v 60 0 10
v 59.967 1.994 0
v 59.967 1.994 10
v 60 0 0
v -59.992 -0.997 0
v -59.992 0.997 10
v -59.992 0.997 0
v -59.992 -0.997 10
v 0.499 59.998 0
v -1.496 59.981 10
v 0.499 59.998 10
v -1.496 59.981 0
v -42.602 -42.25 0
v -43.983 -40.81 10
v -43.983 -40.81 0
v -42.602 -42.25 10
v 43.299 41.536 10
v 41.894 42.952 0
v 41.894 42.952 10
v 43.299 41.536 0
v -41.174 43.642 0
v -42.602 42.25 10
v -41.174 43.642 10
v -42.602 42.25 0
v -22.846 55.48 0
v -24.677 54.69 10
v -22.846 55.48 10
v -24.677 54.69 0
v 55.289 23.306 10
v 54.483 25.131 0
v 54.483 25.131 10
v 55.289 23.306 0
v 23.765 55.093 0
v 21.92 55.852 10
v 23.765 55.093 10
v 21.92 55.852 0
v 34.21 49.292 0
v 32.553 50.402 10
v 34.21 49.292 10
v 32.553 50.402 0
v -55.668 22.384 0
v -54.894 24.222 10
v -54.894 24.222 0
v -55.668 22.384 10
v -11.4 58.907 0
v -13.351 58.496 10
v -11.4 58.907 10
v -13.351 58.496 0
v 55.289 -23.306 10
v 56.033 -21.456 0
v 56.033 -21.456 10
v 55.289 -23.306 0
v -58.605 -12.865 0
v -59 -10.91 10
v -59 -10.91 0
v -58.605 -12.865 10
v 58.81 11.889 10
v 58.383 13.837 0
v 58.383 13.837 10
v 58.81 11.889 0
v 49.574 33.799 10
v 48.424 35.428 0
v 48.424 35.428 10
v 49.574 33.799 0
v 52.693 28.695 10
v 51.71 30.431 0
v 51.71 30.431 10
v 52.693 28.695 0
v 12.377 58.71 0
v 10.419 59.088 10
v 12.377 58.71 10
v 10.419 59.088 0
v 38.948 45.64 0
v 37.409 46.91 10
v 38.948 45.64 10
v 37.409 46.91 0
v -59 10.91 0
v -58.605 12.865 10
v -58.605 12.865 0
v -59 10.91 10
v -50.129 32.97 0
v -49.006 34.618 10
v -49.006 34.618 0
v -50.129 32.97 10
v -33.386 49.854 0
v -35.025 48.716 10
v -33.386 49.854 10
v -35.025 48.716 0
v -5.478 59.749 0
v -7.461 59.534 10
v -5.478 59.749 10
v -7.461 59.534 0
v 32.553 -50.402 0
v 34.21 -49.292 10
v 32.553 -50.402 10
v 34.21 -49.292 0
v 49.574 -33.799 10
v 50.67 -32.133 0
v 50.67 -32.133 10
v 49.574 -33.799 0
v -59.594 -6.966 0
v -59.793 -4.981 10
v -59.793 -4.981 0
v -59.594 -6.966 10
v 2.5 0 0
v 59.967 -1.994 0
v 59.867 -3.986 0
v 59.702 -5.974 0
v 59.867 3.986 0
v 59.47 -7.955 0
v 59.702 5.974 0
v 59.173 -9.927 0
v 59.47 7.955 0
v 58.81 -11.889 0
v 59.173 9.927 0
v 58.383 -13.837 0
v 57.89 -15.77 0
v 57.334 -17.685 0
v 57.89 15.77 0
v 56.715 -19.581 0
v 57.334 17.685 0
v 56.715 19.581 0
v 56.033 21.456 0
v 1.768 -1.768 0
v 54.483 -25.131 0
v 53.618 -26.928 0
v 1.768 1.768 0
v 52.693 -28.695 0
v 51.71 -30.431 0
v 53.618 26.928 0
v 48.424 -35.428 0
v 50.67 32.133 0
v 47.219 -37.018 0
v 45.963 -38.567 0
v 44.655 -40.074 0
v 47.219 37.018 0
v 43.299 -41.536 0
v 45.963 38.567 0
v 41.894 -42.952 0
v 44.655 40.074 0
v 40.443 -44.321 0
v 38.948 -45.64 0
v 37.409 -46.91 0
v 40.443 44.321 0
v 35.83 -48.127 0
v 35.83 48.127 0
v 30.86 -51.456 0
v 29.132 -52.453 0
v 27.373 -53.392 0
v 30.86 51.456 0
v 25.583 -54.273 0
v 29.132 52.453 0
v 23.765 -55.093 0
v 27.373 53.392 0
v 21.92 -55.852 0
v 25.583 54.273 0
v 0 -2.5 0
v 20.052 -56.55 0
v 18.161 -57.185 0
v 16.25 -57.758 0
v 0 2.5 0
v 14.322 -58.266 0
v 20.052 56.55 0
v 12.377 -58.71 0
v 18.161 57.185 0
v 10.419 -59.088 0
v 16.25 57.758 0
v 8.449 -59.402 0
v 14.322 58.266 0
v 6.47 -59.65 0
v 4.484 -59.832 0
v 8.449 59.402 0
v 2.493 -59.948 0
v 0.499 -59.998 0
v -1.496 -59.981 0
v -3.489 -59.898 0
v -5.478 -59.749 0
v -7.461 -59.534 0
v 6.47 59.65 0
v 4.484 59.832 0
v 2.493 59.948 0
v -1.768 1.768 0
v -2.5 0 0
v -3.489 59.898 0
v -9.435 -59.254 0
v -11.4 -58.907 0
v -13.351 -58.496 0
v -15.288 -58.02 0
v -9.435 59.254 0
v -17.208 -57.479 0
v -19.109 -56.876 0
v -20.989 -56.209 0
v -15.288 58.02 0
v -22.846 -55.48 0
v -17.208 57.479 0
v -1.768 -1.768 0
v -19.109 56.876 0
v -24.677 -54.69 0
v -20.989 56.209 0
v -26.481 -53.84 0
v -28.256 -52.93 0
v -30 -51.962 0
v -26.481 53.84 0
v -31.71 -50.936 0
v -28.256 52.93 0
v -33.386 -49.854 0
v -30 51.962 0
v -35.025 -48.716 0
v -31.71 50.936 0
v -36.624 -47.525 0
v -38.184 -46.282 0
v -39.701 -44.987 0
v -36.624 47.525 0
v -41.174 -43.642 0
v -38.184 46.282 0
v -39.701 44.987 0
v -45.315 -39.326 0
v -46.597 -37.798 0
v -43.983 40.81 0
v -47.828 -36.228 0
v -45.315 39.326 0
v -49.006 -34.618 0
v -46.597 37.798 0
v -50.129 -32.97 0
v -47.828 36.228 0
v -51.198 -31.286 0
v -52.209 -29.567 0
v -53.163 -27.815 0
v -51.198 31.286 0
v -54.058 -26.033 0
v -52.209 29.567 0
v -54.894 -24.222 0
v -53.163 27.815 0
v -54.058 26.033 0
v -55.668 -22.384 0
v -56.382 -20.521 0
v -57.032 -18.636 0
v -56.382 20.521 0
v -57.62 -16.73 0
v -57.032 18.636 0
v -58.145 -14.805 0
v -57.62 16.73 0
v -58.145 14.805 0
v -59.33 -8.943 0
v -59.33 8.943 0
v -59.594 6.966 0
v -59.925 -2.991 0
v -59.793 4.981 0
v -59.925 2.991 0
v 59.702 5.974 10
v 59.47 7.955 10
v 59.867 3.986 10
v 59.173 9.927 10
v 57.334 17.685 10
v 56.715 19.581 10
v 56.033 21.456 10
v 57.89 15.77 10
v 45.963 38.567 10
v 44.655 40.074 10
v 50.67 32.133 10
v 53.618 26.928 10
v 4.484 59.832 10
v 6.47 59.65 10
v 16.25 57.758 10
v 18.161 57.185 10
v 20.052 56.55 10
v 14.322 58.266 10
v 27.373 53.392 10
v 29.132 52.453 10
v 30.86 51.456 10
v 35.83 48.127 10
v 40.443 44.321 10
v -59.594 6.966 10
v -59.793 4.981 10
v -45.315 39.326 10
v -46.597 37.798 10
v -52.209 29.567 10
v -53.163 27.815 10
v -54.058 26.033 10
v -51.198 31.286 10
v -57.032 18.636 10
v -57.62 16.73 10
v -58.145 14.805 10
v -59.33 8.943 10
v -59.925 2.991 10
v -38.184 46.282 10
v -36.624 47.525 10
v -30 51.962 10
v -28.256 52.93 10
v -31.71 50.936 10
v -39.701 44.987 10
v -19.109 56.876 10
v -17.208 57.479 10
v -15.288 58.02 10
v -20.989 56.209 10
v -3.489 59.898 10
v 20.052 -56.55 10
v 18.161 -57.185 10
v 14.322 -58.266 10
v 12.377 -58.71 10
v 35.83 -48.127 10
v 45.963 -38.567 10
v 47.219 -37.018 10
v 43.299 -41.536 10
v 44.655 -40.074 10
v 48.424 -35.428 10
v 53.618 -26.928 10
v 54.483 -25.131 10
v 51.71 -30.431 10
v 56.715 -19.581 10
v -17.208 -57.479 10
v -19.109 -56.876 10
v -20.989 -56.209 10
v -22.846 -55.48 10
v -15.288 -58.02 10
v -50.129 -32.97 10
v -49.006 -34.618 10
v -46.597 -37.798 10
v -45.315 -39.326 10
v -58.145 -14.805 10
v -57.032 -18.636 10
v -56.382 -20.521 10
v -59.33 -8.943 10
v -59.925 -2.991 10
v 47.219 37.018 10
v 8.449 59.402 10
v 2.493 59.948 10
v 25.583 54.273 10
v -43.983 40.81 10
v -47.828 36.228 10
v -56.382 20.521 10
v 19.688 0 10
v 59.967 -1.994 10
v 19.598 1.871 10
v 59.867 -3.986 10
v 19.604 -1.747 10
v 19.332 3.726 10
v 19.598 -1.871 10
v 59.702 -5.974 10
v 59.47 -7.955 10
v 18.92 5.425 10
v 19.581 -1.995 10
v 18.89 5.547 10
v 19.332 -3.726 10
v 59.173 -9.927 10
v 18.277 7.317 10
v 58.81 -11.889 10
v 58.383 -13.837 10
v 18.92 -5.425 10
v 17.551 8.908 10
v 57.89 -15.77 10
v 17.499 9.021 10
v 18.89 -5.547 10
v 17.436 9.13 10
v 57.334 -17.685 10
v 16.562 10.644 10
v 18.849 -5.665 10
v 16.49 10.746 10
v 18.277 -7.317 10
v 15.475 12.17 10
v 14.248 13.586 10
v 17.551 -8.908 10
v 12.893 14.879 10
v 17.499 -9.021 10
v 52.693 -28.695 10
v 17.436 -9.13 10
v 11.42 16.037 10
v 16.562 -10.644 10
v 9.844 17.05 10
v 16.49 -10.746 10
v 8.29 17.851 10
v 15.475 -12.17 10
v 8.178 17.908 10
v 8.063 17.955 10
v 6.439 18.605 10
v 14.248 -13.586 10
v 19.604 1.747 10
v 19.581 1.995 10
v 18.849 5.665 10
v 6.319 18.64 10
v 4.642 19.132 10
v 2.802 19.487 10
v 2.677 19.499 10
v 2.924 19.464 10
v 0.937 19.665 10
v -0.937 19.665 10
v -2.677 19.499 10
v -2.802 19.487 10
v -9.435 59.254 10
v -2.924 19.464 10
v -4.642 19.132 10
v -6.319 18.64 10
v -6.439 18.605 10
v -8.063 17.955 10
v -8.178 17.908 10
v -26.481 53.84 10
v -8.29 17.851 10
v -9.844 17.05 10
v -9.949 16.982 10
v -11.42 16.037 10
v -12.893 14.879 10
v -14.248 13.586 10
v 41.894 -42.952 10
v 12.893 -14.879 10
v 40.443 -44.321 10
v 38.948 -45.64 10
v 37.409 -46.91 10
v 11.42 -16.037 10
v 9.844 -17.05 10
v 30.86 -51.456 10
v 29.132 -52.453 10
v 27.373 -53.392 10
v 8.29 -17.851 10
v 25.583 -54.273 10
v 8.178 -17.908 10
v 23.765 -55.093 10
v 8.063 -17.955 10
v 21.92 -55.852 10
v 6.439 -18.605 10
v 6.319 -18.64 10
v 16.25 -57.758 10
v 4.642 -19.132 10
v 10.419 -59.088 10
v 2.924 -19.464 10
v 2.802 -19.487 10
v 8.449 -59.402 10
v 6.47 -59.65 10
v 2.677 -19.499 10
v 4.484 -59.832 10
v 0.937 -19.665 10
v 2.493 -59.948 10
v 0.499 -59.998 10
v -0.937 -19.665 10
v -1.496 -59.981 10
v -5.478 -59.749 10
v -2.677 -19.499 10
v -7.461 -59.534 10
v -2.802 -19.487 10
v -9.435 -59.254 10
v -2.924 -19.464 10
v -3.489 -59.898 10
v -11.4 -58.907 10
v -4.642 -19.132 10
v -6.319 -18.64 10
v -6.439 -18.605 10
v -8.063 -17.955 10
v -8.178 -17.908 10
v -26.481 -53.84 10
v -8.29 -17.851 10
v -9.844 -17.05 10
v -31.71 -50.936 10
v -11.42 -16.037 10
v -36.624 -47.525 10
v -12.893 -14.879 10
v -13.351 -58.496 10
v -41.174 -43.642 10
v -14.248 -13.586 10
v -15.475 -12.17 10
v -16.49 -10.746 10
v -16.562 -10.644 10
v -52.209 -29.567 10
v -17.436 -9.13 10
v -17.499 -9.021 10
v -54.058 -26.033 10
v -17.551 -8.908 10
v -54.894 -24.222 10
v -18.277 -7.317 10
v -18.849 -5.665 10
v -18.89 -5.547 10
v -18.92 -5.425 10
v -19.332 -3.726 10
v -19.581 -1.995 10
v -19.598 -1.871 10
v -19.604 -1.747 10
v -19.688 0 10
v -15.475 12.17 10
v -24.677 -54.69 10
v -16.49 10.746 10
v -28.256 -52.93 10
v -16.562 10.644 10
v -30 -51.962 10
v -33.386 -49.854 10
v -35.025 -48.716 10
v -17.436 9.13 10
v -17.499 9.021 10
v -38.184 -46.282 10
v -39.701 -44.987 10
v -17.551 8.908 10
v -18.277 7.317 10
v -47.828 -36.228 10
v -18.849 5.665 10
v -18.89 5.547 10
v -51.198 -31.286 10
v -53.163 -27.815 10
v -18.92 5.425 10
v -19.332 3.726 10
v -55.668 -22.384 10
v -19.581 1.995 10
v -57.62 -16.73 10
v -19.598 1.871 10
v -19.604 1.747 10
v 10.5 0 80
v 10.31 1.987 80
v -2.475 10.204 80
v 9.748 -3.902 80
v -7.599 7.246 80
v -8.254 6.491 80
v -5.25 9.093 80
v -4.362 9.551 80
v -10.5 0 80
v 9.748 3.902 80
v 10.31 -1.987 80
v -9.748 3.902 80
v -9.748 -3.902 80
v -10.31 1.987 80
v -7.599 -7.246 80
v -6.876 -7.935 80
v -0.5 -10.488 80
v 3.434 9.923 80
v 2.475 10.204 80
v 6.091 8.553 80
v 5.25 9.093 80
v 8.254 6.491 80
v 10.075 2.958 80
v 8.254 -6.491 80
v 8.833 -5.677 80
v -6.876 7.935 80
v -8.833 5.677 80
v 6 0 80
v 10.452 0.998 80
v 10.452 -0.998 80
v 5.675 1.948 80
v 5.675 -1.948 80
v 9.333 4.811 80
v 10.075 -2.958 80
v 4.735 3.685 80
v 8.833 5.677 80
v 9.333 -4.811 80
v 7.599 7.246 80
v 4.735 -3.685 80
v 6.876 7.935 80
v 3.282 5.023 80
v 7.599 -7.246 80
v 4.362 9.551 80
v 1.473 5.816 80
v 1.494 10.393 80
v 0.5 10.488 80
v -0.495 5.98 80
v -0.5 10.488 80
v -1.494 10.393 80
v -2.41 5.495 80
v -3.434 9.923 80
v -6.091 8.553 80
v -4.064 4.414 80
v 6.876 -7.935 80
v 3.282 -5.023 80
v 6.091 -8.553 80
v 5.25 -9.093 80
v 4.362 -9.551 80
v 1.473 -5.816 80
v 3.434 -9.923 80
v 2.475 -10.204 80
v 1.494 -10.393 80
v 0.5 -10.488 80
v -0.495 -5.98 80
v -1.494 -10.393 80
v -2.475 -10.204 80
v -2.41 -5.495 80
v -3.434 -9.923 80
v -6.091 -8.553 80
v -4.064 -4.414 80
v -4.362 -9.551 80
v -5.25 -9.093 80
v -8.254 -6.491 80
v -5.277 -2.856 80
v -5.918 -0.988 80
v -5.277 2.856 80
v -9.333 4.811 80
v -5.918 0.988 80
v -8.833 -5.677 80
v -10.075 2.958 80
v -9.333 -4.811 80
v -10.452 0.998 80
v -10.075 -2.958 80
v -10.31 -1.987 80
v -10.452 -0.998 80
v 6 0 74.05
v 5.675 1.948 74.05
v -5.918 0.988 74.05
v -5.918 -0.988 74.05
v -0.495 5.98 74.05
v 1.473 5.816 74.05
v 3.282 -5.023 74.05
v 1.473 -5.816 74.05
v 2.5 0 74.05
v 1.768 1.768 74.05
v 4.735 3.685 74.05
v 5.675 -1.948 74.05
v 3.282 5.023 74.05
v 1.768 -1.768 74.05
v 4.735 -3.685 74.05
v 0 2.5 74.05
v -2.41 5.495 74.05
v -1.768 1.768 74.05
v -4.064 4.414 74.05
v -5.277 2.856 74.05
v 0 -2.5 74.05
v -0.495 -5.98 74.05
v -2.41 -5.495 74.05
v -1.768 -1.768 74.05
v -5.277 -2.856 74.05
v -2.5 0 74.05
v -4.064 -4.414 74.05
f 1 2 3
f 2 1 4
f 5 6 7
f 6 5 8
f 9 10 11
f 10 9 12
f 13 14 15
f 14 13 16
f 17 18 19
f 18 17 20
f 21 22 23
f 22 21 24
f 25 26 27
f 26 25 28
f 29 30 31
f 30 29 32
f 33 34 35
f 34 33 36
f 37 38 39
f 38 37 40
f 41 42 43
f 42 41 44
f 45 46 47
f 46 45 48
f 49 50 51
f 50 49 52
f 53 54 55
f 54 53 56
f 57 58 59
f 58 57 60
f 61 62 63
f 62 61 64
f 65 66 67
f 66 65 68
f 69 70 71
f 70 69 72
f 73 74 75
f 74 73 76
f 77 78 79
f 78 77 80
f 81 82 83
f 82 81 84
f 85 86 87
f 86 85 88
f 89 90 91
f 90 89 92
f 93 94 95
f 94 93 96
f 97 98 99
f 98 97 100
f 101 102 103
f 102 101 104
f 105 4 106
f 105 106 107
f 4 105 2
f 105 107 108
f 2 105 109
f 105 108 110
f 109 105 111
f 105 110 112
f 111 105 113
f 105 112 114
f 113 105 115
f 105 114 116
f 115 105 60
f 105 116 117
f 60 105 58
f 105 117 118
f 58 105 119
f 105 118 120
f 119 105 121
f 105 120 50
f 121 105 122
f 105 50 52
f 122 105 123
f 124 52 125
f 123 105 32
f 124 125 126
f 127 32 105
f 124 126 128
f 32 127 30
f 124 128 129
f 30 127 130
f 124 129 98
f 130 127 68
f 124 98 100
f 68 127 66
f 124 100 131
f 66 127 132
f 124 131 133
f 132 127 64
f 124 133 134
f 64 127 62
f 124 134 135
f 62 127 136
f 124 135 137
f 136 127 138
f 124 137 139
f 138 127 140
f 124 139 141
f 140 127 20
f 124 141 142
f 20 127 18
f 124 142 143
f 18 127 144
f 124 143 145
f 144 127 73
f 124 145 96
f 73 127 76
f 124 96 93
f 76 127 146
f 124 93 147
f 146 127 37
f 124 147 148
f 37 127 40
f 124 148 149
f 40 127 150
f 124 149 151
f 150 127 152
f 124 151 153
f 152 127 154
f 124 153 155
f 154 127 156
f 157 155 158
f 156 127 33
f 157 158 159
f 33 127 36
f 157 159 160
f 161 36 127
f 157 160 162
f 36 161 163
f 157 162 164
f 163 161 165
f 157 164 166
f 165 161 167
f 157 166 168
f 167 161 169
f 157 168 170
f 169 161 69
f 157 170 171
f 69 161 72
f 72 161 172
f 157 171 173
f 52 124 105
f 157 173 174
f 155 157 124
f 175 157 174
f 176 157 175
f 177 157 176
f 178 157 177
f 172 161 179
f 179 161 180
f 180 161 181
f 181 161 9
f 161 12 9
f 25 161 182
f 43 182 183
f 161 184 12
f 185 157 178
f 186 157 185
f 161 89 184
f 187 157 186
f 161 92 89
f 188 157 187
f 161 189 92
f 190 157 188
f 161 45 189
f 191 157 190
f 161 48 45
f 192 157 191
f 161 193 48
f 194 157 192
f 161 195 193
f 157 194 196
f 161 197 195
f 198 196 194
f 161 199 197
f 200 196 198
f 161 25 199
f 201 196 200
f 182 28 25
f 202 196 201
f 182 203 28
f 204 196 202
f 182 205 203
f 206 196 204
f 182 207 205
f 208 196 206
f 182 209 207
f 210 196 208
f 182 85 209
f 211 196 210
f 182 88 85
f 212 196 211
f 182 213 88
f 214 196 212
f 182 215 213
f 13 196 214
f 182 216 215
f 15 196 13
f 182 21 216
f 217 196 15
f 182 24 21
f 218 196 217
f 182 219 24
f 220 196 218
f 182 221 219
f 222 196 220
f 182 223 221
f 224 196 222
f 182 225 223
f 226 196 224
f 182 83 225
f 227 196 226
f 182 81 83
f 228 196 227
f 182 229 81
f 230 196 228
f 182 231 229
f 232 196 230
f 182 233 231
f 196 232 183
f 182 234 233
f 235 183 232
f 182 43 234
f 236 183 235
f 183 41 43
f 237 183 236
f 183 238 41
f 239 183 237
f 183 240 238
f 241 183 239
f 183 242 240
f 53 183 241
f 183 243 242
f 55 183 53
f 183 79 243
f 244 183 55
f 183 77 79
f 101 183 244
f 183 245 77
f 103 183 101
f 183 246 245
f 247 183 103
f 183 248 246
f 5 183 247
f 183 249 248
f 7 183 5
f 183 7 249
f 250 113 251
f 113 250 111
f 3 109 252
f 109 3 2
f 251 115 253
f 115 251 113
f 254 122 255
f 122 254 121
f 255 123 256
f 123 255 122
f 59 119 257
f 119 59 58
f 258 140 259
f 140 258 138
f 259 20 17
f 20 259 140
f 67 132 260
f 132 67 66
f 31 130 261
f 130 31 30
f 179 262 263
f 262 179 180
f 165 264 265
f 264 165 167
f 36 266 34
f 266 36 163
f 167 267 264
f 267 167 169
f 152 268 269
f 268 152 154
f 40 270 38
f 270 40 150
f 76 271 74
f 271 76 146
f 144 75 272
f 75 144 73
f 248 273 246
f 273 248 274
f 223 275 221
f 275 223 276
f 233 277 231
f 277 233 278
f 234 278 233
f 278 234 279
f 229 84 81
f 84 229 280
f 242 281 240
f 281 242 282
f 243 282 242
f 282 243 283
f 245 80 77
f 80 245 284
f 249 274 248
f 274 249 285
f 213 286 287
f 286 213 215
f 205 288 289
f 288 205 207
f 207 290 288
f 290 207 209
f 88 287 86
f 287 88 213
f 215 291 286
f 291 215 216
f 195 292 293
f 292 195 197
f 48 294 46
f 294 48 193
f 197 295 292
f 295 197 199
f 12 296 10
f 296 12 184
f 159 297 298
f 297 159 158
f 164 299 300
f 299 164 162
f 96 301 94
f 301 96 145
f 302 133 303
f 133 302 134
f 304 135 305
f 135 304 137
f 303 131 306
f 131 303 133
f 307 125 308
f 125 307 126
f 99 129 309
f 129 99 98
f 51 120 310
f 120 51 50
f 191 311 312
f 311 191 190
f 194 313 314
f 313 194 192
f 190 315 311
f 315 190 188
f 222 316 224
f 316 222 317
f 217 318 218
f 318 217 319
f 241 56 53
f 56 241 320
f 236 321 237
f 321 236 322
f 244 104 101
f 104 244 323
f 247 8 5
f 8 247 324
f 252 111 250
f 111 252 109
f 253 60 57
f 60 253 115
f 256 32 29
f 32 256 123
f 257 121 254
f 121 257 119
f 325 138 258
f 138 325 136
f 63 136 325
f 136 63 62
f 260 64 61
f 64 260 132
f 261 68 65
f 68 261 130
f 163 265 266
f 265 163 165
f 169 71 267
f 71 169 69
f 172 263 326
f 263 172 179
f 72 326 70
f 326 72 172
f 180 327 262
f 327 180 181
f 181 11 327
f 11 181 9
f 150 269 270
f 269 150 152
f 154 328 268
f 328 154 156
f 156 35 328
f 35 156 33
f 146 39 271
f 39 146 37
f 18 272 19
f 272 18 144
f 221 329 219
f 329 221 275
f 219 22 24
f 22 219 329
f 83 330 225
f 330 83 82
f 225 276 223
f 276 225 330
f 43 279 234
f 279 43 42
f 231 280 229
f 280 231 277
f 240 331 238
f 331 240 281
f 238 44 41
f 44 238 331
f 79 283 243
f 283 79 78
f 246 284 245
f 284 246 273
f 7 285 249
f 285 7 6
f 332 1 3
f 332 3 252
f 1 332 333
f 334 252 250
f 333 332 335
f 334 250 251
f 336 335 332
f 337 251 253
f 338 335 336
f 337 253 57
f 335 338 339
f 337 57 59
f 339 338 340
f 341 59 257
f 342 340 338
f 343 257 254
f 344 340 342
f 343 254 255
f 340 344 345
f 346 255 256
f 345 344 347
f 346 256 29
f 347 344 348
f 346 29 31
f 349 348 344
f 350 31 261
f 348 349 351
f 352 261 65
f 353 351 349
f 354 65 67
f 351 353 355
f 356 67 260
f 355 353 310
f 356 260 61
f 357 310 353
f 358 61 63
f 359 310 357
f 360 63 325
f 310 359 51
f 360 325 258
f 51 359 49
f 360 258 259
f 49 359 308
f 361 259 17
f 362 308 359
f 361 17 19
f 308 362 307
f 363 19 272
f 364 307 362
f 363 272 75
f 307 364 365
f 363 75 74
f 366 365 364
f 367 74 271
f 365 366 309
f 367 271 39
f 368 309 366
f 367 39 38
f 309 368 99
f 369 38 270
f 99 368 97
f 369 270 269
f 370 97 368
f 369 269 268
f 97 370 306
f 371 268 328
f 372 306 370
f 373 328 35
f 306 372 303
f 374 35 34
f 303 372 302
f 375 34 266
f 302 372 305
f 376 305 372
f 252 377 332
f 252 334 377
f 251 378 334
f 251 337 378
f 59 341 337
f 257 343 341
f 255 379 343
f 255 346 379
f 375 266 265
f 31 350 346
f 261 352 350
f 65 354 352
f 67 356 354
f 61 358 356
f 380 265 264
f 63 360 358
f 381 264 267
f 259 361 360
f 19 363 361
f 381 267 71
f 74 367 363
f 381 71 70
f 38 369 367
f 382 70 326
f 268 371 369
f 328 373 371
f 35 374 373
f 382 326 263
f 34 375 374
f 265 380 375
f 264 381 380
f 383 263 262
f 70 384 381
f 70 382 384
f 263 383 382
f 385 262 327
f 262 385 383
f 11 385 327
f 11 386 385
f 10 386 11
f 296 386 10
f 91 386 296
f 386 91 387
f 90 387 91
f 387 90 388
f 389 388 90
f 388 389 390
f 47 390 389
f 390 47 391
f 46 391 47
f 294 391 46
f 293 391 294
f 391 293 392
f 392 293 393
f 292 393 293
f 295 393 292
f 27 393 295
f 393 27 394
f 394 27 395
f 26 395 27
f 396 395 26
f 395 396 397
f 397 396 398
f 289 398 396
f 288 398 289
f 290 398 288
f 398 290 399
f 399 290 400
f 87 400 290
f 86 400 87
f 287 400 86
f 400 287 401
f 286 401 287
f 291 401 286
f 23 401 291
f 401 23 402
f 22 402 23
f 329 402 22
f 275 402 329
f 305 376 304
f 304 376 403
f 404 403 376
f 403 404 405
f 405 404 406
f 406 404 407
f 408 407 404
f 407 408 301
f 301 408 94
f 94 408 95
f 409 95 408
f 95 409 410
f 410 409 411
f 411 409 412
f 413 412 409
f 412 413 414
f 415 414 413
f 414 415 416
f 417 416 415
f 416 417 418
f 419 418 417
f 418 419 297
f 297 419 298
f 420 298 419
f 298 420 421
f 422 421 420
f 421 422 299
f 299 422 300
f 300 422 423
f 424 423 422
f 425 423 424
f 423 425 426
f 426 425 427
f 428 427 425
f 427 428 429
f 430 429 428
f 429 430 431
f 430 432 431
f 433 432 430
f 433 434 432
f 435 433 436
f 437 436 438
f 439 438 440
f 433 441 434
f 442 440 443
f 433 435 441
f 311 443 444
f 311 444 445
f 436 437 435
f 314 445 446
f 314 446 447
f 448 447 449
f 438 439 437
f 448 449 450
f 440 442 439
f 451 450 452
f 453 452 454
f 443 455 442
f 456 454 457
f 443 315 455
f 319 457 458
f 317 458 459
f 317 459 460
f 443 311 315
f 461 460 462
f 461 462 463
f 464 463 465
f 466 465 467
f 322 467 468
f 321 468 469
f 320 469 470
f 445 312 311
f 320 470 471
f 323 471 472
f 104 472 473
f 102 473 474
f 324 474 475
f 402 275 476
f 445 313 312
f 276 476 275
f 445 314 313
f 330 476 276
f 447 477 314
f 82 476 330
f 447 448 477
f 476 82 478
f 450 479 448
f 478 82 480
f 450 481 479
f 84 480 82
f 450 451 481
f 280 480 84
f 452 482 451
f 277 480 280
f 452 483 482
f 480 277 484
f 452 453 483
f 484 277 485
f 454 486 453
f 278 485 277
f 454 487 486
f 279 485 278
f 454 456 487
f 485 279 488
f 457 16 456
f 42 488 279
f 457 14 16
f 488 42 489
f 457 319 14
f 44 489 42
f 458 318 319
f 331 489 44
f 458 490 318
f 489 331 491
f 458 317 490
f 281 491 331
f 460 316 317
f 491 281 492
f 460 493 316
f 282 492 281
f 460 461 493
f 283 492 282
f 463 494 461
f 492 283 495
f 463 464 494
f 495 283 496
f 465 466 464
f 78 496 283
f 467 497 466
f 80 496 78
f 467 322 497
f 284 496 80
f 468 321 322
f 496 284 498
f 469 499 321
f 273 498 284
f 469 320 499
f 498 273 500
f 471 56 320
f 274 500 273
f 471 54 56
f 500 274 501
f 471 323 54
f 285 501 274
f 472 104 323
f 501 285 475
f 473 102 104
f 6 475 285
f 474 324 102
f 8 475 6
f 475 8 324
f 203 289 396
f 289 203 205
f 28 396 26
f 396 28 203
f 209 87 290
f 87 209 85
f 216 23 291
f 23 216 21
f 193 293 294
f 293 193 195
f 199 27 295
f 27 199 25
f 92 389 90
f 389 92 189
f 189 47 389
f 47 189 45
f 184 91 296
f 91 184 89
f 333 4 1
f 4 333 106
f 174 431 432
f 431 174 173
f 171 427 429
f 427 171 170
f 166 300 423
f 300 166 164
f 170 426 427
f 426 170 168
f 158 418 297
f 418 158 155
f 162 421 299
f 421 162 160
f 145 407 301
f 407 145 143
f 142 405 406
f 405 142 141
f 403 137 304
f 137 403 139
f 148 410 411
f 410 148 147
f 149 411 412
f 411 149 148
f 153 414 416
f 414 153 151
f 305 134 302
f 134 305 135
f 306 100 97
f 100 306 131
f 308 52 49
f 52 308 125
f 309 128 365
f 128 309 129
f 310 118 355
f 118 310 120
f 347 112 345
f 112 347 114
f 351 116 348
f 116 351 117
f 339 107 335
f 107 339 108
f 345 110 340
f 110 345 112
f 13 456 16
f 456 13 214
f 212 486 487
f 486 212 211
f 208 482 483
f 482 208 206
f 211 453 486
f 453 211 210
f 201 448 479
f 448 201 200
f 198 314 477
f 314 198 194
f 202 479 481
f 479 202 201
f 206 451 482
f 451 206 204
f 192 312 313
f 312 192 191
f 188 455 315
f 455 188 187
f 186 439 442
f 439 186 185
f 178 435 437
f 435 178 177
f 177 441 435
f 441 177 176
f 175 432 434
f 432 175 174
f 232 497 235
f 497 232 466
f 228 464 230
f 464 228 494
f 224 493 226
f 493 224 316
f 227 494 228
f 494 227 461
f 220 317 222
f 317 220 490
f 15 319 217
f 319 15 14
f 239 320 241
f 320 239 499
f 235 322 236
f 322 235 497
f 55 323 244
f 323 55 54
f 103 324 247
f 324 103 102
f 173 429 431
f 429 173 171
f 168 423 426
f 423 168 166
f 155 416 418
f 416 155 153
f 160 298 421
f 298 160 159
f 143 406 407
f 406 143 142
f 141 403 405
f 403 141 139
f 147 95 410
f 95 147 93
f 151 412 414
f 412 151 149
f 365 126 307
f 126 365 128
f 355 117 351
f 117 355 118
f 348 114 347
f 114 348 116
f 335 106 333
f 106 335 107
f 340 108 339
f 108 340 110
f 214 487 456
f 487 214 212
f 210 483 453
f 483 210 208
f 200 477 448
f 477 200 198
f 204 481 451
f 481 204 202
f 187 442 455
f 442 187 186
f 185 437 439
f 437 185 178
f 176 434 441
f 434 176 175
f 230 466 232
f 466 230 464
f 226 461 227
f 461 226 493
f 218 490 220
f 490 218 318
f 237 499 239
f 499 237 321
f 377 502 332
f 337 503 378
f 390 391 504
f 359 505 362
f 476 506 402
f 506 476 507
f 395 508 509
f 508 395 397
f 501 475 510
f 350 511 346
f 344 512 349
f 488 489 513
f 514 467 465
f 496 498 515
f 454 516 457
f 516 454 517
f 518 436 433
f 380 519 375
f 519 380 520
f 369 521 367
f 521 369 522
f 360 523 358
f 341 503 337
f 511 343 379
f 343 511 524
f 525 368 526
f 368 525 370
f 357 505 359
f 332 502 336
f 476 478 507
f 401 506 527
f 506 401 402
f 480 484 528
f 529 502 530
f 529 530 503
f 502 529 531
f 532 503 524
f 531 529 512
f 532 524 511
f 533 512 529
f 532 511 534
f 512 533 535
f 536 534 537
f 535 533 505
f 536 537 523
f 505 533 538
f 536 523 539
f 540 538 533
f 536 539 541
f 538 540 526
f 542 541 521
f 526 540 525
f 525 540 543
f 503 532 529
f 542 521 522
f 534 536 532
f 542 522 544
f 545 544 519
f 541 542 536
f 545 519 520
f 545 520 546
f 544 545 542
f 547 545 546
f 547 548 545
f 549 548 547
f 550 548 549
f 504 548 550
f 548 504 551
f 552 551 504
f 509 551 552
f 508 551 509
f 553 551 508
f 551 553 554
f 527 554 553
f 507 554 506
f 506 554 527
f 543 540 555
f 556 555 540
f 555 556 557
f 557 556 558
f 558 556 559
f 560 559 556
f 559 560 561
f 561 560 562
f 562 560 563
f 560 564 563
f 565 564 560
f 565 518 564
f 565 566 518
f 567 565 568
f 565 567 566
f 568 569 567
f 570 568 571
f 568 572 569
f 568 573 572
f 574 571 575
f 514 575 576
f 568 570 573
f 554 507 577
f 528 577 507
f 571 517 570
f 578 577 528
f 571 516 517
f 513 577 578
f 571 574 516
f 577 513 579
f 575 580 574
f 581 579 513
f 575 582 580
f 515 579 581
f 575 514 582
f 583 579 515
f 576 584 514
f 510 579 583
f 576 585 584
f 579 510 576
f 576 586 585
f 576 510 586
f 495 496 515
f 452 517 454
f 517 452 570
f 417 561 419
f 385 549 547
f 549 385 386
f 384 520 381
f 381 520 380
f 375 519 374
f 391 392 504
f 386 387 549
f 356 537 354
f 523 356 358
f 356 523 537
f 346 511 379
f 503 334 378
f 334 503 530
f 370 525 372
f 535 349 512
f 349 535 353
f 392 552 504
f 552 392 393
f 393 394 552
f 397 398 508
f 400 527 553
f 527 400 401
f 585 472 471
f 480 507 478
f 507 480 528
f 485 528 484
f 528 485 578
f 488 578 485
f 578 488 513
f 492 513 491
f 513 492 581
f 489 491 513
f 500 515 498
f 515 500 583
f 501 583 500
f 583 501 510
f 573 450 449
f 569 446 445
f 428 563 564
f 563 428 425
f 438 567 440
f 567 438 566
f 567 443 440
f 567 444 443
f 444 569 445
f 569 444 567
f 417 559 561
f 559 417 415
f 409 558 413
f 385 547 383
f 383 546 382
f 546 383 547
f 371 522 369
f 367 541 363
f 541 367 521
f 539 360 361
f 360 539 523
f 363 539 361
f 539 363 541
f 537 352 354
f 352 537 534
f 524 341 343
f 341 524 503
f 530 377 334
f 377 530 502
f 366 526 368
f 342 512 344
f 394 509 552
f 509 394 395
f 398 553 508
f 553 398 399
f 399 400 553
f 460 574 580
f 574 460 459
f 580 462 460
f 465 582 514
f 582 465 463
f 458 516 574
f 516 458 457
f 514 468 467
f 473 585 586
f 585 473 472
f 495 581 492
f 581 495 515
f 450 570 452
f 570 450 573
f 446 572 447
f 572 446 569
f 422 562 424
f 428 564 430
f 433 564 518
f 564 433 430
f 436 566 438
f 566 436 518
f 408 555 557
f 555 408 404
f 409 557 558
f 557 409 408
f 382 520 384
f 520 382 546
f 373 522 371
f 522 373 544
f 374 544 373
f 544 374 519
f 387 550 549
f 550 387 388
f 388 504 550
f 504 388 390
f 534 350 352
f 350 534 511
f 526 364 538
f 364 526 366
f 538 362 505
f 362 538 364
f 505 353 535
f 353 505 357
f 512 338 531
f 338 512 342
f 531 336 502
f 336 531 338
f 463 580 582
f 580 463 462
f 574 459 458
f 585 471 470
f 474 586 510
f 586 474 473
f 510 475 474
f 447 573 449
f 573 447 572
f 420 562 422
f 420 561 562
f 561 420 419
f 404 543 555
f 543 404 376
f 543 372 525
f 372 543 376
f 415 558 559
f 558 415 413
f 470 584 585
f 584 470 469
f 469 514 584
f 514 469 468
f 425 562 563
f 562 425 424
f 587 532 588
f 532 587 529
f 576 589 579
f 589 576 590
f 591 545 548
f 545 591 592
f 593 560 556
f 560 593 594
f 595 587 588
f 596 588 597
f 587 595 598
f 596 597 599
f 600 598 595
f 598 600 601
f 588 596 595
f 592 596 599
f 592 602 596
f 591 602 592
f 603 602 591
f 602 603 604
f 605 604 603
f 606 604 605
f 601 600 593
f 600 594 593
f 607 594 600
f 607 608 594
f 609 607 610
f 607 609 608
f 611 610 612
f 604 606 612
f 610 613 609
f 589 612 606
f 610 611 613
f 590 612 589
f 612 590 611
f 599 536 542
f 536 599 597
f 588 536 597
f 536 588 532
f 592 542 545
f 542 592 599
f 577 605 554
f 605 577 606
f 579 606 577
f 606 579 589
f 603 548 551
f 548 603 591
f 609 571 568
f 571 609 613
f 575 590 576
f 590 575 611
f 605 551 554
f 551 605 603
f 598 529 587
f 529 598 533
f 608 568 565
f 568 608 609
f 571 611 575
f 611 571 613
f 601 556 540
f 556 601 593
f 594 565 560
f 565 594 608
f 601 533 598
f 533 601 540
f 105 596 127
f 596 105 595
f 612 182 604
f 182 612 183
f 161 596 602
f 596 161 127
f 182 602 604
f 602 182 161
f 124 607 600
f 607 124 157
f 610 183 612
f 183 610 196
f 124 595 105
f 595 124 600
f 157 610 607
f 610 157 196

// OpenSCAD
$fa = 1;
base_height = 10;
ped_height = 80;
base_diameter = 120;
ped_diameter = 21;
nut_diameter = 12;
nut_depth = 6;
hole_diam = 5;
hole_depth = ped_height + 1;

//10mm diam x .7mm deep

difference(){
  union(){
    translate([0,0,base_height/2])
      cylinder(h=base_height, r=base_diameter/2, center=true);
    translate([0,0,ped_height/2])
      cylinder(h=ped_height, r1=ped_diameter, r2=ped_diameter/2, center=true);
  }
  translate([0,0,ped_height-nut_depth/2+.1])
    cylinder(h=nut_depth+.1, r=nut_diameter/2, center=true);
  translate([0,0,ped_height-hole_depth/2+.1])
    cylinder(h=hole_depth+.1, r=hole_diam/2, center=true);
}
